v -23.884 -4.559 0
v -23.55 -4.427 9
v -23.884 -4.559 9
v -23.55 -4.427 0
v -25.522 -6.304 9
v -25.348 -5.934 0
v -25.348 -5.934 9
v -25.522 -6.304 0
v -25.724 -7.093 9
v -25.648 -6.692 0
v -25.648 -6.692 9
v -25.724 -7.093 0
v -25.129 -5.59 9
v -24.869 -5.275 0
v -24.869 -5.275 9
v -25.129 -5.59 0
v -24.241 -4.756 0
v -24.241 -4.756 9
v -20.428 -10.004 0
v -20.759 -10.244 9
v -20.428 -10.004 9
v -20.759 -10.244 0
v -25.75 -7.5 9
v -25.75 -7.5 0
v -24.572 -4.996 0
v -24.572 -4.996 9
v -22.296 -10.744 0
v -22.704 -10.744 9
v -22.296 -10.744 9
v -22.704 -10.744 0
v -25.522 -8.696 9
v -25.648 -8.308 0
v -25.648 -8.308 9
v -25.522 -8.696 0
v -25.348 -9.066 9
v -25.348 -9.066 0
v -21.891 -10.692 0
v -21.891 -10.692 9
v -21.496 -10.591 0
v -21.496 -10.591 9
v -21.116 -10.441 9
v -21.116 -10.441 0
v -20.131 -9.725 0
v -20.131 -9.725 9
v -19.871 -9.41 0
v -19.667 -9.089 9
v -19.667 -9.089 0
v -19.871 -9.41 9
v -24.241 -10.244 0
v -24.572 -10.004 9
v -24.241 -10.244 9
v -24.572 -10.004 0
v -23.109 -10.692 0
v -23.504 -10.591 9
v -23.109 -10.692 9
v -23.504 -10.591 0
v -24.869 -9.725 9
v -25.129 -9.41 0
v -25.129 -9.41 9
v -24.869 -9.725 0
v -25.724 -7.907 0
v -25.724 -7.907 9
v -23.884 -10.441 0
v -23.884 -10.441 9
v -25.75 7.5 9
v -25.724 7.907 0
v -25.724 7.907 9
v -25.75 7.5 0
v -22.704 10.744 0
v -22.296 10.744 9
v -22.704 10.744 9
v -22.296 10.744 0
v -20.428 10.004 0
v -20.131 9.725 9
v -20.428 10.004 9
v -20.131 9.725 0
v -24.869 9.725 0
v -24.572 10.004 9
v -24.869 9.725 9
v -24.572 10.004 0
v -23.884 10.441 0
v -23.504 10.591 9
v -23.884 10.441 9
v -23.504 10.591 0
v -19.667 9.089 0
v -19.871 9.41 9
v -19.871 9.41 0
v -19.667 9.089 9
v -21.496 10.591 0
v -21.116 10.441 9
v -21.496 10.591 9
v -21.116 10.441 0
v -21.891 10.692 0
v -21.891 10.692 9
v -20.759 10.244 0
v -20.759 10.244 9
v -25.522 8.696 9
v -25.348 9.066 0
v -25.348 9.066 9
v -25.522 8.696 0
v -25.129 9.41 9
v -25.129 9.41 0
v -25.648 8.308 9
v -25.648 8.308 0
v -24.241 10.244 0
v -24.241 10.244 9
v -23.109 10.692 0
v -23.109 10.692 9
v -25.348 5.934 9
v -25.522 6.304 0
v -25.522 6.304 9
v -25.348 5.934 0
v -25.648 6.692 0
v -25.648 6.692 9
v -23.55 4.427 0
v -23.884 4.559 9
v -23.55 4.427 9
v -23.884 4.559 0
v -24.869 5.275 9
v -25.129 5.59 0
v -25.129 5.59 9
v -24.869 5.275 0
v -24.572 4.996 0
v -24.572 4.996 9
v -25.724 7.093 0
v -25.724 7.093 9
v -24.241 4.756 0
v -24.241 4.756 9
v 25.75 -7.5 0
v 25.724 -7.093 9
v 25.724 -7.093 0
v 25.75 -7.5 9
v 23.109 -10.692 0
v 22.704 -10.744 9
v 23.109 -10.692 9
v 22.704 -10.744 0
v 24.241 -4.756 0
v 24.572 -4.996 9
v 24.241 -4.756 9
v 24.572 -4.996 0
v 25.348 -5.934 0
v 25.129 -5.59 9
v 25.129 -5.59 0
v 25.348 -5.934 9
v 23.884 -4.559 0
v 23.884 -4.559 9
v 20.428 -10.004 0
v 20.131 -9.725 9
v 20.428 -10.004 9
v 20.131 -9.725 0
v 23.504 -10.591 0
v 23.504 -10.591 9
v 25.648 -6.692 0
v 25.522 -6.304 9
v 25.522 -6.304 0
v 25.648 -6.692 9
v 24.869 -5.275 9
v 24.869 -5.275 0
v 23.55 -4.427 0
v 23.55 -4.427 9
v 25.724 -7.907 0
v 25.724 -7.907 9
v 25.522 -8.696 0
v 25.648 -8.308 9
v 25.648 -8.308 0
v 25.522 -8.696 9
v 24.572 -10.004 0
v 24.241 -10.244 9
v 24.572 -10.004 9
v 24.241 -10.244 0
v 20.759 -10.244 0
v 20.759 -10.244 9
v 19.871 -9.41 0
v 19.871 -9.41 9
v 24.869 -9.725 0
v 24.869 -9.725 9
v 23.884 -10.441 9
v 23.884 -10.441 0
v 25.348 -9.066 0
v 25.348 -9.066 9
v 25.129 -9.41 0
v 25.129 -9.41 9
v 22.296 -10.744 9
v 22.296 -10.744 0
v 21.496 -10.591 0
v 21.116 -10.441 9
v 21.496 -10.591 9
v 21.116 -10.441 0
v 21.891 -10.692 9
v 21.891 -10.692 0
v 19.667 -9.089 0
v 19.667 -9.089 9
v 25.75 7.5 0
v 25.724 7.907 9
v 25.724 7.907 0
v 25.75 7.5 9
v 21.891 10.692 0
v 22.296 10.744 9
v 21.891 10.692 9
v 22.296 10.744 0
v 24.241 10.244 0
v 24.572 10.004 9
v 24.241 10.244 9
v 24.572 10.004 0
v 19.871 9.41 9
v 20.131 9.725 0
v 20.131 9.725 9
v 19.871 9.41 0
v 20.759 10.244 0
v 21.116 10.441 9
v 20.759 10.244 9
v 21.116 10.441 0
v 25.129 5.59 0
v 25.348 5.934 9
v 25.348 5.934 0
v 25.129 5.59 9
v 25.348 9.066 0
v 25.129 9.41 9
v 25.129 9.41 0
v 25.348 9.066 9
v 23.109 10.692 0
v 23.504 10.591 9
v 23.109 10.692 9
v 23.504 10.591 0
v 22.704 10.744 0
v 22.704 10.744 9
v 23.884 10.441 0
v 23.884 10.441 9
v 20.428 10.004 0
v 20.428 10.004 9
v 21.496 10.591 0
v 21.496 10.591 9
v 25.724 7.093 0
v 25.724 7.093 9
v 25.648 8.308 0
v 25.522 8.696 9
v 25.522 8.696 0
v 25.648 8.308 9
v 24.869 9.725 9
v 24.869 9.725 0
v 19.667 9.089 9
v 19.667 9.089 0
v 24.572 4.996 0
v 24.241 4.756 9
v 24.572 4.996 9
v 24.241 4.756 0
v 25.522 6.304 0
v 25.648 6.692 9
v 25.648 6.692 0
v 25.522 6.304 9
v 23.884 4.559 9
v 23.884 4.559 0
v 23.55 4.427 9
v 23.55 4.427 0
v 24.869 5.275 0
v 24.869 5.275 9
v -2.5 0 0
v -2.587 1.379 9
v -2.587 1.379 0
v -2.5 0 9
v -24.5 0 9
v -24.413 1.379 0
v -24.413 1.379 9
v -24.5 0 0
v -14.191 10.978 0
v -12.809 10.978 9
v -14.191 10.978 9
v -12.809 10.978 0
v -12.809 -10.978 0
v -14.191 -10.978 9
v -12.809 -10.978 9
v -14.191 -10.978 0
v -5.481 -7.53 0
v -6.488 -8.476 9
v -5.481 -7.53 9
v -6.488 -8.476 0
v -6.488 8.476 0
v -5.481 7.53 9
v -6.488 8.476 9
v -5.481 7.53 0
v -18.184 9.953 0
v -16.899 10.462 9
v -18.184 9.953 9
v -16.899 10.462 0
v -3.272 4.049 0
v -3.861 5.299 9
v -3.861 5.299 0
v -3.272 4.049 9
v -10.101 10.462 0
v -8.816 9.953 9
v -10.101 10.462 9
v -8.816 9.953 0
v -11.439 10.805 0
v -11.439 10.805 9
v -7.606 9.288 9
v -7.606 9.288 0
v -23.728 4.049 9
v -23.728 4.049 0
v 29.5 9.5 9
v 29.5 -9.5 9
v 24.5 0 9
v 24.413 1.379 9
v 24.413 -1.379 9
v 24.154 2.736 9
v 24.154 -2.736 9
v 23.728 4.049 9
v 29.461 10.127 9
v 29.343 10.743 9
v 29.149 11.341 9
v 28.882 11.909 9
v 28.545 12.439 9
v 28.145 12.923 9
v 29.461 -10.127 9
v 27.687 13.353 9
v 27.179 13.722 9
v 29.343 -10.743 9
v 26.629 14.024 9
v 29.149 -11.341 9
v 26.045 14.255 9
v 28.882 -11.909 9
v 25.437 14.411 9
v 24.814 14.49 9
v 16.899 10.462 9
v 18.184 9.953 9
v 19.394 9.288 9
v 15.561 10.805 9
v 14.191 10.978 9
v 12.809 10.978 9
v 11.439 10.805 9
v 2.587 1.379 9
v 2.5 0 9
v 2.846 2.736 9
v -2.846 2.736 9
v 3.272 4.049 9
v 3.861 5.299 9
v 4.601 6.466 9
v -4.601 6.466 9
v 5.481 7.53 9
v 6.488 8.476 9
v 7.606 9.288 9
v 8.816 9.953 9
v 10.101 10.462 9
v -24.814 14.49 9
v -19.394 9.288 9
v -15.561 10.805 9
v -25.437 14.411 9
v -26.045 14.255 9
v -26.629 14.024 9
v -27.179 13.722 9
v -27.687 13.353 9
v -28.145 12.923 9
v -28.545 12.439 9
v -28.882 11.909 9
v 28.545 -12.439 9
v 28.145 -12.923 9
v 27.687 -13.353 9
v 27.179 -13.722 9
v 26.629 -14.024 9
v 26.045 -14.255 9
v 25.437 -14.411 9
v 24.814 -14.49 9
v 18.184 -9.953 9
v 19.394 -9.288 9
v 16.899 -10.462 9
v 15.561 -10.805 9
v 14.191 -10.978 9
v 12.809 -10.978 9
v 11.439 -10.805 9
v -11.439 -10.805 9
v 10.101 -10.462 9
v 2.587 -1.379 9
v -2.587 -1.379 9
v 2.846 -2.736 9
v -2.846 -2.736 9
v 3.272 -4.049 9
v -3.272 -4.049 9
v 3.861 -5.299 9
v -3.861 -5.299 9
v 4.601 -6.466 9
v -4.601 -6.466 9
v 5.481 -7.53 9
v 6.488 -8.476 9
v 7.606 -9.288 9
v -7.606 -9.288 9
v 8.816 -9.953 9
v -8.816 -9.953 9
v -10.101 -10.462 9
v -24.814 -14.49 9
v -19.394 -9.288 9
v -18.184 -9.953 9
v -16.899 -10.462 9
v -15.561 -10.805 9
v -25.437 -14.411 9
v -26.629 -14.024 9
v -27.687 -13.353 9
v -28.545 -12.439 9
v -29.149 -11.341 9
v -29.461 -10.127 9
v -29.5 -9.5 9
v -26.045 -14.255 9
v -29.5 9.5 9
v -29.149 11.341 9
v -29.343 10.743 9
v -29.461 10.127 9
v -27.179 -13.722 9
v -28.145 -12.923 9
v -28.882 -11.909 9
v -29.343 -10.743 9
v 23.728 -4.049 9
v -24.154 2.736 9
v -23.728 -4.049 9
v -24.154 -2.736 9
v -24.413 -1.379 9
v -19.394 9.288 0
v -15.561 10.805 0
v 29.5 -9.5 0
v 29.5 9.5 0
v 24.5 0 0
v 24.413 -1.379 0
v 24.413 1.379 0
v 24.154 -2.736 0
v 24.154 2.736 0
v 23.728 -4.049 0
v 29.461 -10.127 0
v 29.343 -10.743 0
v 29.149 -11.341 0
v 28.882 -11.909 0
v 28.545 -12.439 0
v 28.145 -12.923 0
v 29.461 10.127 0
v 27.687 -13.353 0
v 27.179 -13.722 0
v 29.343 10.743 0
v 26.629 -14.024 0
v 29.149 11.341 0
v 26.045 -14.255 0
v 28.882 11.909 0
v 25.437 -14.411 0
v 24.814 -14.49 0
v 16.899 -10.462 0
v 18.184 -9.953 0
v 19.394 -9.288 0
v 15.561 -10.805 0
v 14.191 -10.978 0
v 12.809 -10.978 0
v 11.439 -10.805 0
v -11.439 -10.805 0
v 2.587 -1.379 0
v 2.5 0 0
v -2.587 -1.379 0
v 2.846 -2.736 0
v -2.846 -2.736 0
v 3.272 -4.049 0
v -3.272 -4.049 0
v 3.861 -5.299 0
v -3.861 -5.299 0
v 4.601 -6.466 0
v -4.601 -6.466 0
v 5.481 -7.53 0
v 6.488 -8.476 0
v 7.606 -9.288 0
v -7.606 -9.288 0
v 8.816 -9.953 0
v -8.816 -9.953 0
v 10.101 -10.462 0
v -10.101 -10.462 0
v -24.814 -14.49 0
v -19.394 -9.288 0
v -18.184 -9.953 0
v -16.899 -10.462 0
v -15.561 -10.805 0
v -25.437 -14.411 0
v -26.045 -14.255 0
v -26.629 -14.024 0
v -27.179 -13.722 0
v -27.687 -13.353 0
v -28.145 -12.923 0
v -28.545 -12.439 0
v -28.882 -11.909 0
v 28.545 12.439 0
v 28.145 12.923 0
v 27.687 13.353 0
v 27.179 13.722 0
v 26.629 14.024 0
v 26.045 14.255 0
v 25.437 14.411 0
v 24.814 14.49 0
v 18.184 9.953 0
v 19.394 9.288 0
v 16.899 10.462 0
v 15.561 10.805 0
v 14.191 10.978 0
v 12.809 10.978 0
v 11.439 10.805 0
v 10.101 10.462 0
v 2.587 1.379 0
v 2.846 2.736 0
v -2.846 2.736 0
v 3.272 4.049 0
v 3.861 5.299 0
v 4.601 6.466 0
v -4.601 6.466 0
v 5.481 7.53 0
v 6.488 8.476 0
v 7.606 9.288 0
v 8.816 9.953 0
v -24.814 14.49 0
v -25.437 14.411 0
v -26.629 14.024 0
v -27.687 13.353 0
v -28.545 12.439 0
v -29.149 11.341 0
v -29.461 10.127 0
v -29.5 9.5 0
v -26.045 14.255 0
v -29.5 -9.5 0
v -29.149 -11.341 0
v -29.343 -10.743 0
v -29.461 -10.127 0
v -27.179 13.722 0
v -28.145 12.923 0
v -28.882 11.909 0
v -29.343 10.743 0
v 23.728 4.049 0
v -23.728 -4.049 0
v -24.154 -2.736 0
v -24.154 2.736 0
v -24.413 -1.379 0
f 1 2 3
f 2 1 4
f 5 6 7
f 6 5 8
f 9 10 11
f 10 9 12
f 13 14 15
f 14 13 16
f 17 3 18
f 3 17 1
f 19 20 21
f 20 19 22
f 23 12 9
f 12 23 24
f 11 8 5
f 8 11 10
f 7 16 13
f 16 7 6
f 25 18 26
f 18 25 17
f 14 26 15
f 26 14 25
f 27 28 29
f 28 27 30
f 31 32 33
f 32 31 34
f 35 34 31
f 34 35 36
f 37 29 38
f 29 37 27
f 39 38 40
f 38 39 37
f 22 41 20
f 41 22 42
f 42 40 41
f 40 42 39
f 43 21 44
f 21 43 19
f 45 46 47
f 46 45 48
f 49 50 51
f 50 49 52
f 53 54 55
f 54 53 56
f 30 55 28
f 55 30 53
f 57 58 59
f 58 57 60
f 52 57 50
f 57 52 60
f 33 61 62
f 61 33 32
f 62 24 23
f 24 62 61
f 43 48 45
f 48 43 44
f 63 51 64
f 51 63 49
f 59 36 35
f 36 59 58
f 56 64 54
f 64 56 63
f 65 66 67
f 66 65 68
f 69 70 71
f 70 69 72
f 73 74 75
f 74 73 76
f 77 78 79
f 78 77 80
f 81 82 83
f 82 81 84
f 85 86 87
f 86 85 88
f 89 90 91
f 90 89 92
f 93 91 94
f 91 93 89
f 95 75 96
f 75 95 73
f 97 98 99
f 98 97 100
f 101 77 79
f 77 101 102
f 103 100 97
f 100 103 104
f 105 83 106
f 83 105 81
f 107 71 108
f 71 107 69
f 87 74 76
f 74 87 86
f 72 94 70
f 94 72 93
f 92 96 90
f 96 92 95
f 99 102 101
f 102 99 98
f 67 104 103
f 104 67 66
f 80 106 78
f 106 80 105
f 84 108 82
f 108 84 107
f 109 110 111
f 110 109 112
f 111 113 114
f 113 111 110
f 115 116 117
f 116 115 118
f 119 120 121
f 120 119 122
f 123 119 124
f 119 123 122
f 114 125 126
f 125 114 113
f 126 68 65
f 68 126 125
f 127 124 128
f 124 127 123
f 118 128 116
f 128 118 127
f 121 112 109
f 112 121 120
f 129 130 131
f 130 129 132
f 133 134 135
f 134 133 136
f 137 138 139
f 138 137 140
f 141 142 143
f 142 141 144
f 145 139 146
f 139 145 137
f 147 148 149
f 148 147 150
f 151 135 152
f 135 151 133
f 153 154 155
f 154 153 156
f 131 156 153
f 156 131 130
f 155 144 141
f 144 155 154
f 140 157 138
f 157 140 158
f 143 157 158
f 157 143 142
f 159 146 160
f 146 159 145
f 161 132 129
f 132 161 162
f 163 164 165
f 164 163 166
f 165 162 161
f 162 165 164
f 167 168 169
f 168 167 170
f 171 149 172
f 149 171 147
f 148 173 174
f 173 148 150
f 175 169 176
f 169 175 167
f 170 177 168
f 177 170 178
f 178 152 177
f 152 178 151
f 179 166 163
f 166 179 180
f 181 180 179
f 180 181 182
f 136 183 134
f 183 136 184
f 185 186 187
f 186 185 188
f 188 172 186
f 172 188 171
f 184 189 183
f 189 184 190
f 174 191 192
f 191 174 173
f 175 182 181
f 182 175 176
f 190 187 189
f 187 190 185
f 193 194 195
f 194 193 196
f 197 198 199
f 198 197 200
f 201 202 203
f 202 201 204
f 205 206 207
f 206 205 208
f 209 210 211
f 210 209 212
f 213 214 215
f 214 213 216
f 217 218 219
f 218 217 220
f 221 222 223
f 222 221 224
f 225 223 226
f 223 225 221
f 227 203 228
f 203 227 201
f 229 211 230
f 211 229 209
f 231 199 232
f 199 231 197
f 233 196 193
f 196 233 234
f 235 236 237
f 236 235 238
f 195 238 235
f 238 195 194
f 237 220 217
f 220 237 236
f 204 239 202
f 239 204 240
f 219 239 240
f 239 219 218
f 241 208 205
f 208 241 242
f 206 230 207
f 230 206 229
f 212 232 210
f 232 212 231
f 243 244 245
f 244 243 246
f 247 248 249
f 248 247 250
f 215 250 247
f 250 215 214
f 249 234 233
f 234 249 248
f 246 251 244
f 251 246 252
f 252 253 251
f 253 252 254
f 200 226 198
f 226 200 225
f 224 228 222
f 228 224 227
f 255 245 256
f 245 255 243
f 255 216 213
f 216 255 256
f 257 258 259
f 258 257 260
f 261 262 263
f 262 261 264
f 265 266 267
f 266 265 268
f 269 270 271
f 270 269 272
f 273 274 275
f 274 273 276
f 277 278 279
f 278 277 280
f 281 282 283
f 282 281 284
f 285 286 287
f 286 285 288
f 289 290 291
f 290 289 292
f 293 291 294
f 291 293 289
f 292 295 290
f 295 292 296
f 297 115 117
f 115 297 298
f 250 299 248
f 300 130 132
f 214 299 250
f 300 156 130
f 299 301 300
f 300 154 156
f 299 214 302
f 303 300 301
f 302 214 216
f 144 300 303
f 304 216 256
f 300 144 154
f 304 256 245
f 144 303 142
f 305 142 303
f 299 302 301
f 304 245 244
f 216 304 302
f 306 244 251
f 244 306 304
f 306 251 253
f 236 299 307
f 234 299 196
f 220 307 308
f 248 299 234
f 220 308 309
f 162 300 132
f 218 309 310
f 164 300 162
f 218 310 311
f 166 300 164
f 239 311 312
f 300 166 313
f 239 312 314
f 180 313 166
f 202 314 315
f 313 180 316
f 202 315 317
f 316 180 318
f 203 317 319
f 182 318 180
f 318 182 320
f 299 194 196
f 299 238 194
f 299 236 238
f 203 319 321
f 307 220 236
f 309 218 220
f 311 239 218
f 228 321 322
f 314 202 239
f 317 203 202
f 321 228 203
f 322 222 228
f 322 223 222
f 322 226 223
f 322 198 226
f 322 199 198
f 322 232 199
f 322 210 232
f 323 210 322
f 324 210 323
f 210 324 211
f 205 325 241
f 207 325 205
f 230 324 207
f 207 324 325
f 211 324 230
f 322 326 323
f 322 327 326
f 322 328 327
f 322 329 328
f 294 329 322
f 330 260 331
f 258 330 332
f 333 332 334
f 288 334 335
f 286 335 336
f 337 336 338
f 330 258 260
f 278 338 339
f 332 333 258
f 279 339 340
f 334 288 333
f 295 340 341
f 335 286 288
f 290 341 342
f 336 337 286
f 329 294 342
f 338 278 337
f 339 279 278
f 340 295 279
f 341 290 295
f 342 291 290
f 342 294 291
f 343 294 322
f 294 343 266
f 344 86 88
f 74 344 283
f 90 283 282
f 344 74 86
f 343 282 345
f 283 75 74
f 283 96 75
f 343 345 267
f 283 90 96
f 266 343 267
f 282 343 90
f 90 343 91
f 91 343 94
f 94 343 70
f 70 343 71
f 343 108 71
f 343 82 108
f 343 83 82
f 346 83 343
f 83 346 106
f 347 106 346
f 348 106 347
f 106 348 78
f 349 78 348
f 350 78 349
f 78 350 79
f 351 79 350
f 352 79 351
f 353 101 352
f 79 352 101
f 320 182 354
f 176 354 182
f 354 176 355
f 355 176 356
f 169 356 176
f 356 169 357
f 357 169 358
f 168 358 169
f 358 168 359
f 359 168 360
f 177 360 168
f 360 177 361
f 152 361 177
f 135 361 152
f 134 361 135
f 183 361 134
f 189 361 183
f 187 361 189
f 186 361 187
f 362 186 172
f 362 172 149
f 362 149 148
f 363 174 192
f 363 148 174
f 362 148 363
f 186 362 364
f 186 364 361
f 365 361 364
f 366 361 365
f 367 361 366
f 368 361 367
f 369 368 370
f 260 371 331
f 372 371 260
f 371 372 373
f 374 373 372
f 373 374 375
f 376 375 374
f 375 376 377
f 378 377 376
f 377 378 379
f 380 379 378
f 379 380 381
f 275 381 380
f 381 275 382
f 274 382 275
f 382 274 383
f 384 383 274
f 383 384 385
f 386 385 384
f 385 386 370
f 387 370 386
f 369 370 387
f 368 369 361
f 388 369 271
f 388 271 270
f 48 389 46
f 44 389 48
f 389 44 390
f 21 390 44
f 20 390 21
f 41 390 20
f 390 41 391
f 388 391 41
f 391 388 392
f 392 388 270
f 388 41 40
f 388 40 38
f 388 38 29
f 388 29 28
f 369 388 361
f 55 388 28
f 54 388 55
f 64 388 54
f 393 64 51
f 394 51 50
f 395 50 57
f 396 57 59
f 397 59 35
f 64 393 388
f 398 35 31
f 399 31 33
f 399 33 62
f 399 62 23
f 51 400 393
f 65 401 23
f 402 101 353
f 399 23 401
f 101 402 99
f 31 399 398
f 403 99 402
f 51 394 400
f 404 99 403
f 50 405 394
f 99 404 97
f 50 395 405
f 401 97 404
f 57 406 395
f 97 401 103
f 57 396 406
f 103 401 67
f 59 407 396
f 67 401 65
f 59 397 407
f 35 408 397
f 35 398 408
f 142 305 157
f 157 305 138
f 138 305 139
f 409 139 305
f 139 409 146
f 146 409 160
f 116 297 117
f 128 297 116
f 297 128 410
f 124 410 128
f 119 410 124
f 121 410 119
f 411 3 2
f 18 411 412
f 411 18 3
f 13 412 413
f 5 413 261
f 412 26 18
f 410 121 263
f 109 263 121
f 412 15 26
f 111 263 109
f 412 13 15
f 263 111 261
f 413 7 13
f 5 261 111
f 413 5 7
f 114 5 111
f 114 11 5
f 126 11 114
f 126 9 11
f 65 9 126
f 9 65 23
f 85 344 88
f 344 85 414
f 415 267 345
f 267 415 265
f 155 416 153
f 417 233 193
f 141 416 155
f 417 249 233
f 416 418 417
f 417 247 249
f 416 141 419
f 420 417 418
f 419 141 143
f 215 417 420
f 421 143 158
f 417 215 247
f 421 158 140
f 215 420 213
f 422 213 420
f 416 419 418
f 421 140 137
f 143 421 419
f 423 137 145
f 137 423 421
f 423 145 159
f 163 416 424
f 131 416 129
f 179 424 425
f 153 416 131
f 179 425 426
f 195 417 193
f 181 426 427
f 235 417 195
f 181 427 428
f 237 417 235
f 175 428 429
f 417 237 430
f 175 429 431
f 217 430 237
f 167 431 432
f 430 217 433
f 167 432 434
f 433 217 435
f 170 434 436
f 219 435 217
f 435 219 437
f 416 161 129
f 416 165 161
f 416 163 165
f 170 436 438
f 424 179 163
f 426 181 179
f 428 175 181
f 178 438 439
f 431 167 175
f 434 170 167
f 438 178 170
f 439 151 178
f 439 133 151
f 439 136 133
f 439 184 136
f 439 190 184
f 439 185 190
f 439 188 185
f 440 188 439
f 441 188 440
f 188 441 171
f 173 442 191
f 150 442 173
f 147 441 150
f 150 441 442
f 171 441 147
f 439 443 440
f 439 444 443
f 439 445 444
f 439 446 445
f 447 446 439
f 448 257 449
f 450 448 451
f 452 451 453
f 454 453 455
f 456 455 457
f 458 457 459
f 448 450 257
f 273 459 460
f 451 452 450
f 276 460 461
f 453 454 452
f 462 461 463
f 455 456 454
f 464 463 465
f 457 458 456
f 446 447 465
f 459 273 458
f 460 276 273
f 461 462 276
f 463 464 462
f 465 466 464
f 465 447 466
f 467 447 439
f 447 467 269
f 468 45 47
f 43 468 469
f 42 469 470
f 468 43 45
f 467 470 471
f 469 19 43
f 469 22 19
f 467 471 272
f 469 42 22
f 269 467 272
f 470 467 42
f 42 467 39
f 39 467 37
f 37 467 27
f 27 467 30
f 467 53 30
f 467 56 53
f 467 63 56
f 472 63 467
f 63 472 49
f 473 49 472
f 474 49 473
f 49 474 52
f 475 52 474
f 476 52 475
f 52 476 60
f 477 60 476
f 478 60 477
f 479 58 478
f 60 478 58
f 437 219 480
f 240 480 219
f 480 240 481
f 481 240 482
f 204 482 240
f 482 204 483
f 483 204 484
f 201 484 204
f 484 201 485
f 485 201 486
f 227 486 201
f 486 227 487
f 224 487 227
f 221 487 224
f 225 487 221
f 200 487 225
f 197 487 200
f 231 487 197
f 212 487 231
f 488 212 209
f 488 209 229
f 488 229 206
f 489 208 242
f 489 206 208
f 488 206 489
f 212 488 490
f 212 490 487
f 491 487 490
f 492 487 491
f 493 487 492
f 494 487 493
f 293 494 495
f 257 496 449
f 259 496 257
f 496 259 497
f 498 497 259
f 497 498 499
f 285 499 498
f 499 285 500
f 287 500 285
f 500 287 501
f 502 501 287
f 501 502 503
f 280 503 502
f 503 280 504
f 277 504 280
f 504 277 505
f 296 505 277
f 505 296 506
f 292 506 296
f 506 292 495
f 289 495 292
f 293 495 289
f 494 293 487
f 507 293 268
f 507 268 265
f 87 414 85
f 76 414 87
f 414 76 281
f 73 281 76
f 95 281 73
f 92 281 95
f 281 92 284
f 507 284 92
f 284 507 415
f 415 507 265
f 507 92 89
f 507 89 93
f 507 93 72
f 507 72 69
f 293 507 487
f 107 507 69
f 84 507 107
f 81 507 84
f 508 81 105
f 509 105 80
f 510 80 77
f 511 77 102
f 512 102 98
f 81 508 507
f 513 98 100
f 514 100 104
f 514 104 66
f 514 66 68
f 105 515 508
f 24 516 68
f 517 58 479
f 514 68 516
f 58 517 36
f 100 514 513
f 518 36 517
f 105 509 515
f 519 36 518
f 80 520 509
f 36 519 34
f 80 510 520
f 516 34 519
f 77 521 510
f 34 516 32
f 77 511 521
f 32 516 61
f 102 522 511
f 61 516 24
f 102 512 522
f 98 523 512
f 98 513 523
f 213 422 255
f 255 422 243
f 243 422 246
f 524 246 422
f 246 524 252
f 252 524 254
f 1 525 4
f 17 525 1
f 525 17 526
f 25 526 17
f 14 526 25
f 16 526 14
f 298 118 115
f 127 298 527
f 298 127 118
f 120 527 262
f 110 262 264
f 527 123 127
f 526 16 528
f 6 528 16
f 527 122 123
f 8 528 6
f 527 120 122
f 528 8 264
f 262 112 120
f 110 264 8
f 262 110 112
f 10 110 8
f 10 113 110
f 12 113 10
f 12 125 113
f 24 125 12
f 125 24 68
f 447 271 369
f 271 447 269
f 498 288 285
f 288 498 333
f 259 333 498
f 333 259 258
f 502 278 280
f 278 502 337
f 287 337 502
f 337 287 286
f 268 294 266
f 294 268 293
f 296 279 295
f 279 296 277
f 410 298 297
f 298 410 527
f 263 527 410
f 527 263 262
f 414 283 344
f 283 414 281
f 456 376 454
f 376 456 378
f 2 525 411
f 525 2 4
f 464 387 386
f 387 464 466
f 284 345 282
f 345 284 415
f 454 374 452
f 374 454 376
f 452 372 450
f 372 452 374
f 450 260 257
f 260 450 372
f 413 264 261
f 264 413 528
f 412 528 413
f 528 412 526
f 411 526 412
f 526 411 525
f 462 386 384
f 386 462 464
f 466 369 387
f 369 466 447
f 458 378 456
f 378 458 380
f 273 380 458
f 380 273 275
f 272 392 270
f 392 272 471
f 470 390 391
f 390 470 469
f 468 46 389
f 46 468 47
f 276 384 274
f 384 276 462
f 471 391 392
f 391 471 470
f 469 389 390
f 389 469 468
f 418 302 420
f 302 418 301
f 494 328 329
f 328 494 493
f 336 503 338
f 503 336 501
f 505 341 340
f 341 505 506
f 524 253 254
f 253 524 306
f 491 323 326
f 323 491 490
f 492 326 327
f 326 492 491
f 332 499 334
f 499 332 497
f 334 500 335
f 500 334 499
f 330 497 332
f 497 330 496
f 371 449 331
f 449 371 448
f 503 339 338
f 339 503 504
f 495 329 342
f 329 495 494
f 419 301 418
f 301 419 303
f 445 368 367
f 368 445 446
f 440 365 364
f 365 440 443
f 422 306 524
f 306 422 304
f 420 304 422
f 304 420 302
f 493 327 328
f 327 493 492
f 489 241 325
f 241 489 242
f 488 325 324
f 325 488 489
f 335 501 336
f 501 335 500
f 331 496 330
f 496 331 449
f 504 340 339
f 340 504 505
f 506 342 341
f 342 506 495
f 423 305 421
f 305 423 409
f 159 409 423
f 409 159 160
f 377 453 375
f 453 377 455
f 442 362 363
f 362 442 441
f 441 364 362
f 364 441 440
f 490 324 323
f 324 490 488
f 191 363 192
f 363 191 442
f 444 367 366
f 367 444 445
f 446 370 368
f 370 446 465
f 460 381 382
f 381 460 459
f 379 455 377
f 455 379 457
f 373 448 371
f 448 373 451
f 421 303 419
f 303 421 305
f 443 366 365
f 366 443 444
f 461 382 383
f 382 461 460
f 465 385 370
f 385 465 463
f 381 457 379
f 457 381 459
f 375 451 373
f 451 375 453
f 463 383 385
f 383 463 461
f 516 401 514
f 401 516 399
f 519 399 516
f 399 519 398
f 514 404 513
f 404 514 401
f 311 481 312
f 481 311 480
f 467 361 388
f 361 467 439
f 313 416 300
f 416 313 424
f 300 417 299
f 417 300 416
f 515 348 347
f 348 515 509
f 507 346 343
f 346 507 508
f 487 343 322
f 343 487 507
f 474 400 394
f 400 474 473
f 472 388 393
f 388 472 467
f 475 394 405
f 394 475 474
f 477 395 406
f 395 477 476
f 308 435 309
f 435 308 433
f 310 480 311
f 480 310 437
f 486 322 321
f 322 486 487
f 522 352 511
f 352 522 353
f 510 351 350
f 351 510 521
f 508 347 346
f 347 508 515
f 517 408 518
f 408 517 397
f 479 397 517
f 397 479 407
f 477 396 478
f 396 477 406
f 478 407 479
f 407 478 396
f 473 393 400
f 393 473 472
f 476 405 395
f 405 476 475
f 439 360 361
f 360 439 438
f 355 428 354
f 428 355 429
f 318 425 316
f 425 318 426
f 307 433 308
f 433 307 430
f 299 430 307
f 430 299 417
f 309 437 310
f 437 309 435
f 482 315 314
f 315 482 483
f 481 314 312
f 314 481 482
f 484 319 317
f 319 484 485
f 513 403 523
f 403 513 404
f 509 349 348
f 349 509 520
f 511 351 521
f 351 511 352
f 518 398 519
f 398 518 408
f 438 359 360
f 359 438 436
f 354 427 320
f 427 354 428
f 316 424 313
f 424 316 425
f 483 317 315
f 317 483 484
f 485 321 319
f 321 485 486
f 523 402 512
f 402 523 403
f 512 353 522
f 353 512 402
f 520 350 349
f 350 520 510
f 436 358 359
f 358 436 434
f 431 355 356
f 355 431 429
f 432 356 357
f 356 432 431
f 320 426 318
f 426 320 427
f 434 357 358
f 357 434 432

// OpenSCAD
$fn = 50;


difference() {
	union() {
		hull() {
			translate(v = [-24.5000000000, 9.5000000000, 0]) {
				cylinder(h = 9, r = 5);
			}
			translate(v = [24.5000000000, 9.5000000000, 0]) {
				cylinder(h = 9, r = 5);
			}
			translate(v = [-24.5000000000, -9.5000000000, 0]) {
				cylinder(h = 9, r = 5);
			}
			translate(v = [24.5000000000, -9.5000000000, 0]) {
				cylinder(h = 9, r = 5);
			}
		}
	}
	union() {
		#translate(v = [-22.5000000000, -7.5000000000, -100.0000000000]) {
			cylinder(h = 200, r = 3.2500000000);
		}
		#translate(v = [-22.5000000000, 7.5000000000, -100.0000000000]) {
			cylinder(h = 200, r = 3.2500000000);
		}
		#translate(v = [22.5000000000, -7.5000000000, -100.0000000000]) {
			cylinder(h = 200, r = 3.2500000000);
		}
		#translate(v = [22.5000000000, 7.5000000000, -100.0000000000]) {
			cylinder(h = 200, r = 3.2500000000);
		}
		#translate(v = [-13.5000000000, 0, 0]) {
			cylinder(h = 9, r = 11.0000000000);
		}
		#translate(v = [13.5000000000, 0, 0]) {
			cylinder(h = 9, r = 11.0000000000);
		}
	}
}
